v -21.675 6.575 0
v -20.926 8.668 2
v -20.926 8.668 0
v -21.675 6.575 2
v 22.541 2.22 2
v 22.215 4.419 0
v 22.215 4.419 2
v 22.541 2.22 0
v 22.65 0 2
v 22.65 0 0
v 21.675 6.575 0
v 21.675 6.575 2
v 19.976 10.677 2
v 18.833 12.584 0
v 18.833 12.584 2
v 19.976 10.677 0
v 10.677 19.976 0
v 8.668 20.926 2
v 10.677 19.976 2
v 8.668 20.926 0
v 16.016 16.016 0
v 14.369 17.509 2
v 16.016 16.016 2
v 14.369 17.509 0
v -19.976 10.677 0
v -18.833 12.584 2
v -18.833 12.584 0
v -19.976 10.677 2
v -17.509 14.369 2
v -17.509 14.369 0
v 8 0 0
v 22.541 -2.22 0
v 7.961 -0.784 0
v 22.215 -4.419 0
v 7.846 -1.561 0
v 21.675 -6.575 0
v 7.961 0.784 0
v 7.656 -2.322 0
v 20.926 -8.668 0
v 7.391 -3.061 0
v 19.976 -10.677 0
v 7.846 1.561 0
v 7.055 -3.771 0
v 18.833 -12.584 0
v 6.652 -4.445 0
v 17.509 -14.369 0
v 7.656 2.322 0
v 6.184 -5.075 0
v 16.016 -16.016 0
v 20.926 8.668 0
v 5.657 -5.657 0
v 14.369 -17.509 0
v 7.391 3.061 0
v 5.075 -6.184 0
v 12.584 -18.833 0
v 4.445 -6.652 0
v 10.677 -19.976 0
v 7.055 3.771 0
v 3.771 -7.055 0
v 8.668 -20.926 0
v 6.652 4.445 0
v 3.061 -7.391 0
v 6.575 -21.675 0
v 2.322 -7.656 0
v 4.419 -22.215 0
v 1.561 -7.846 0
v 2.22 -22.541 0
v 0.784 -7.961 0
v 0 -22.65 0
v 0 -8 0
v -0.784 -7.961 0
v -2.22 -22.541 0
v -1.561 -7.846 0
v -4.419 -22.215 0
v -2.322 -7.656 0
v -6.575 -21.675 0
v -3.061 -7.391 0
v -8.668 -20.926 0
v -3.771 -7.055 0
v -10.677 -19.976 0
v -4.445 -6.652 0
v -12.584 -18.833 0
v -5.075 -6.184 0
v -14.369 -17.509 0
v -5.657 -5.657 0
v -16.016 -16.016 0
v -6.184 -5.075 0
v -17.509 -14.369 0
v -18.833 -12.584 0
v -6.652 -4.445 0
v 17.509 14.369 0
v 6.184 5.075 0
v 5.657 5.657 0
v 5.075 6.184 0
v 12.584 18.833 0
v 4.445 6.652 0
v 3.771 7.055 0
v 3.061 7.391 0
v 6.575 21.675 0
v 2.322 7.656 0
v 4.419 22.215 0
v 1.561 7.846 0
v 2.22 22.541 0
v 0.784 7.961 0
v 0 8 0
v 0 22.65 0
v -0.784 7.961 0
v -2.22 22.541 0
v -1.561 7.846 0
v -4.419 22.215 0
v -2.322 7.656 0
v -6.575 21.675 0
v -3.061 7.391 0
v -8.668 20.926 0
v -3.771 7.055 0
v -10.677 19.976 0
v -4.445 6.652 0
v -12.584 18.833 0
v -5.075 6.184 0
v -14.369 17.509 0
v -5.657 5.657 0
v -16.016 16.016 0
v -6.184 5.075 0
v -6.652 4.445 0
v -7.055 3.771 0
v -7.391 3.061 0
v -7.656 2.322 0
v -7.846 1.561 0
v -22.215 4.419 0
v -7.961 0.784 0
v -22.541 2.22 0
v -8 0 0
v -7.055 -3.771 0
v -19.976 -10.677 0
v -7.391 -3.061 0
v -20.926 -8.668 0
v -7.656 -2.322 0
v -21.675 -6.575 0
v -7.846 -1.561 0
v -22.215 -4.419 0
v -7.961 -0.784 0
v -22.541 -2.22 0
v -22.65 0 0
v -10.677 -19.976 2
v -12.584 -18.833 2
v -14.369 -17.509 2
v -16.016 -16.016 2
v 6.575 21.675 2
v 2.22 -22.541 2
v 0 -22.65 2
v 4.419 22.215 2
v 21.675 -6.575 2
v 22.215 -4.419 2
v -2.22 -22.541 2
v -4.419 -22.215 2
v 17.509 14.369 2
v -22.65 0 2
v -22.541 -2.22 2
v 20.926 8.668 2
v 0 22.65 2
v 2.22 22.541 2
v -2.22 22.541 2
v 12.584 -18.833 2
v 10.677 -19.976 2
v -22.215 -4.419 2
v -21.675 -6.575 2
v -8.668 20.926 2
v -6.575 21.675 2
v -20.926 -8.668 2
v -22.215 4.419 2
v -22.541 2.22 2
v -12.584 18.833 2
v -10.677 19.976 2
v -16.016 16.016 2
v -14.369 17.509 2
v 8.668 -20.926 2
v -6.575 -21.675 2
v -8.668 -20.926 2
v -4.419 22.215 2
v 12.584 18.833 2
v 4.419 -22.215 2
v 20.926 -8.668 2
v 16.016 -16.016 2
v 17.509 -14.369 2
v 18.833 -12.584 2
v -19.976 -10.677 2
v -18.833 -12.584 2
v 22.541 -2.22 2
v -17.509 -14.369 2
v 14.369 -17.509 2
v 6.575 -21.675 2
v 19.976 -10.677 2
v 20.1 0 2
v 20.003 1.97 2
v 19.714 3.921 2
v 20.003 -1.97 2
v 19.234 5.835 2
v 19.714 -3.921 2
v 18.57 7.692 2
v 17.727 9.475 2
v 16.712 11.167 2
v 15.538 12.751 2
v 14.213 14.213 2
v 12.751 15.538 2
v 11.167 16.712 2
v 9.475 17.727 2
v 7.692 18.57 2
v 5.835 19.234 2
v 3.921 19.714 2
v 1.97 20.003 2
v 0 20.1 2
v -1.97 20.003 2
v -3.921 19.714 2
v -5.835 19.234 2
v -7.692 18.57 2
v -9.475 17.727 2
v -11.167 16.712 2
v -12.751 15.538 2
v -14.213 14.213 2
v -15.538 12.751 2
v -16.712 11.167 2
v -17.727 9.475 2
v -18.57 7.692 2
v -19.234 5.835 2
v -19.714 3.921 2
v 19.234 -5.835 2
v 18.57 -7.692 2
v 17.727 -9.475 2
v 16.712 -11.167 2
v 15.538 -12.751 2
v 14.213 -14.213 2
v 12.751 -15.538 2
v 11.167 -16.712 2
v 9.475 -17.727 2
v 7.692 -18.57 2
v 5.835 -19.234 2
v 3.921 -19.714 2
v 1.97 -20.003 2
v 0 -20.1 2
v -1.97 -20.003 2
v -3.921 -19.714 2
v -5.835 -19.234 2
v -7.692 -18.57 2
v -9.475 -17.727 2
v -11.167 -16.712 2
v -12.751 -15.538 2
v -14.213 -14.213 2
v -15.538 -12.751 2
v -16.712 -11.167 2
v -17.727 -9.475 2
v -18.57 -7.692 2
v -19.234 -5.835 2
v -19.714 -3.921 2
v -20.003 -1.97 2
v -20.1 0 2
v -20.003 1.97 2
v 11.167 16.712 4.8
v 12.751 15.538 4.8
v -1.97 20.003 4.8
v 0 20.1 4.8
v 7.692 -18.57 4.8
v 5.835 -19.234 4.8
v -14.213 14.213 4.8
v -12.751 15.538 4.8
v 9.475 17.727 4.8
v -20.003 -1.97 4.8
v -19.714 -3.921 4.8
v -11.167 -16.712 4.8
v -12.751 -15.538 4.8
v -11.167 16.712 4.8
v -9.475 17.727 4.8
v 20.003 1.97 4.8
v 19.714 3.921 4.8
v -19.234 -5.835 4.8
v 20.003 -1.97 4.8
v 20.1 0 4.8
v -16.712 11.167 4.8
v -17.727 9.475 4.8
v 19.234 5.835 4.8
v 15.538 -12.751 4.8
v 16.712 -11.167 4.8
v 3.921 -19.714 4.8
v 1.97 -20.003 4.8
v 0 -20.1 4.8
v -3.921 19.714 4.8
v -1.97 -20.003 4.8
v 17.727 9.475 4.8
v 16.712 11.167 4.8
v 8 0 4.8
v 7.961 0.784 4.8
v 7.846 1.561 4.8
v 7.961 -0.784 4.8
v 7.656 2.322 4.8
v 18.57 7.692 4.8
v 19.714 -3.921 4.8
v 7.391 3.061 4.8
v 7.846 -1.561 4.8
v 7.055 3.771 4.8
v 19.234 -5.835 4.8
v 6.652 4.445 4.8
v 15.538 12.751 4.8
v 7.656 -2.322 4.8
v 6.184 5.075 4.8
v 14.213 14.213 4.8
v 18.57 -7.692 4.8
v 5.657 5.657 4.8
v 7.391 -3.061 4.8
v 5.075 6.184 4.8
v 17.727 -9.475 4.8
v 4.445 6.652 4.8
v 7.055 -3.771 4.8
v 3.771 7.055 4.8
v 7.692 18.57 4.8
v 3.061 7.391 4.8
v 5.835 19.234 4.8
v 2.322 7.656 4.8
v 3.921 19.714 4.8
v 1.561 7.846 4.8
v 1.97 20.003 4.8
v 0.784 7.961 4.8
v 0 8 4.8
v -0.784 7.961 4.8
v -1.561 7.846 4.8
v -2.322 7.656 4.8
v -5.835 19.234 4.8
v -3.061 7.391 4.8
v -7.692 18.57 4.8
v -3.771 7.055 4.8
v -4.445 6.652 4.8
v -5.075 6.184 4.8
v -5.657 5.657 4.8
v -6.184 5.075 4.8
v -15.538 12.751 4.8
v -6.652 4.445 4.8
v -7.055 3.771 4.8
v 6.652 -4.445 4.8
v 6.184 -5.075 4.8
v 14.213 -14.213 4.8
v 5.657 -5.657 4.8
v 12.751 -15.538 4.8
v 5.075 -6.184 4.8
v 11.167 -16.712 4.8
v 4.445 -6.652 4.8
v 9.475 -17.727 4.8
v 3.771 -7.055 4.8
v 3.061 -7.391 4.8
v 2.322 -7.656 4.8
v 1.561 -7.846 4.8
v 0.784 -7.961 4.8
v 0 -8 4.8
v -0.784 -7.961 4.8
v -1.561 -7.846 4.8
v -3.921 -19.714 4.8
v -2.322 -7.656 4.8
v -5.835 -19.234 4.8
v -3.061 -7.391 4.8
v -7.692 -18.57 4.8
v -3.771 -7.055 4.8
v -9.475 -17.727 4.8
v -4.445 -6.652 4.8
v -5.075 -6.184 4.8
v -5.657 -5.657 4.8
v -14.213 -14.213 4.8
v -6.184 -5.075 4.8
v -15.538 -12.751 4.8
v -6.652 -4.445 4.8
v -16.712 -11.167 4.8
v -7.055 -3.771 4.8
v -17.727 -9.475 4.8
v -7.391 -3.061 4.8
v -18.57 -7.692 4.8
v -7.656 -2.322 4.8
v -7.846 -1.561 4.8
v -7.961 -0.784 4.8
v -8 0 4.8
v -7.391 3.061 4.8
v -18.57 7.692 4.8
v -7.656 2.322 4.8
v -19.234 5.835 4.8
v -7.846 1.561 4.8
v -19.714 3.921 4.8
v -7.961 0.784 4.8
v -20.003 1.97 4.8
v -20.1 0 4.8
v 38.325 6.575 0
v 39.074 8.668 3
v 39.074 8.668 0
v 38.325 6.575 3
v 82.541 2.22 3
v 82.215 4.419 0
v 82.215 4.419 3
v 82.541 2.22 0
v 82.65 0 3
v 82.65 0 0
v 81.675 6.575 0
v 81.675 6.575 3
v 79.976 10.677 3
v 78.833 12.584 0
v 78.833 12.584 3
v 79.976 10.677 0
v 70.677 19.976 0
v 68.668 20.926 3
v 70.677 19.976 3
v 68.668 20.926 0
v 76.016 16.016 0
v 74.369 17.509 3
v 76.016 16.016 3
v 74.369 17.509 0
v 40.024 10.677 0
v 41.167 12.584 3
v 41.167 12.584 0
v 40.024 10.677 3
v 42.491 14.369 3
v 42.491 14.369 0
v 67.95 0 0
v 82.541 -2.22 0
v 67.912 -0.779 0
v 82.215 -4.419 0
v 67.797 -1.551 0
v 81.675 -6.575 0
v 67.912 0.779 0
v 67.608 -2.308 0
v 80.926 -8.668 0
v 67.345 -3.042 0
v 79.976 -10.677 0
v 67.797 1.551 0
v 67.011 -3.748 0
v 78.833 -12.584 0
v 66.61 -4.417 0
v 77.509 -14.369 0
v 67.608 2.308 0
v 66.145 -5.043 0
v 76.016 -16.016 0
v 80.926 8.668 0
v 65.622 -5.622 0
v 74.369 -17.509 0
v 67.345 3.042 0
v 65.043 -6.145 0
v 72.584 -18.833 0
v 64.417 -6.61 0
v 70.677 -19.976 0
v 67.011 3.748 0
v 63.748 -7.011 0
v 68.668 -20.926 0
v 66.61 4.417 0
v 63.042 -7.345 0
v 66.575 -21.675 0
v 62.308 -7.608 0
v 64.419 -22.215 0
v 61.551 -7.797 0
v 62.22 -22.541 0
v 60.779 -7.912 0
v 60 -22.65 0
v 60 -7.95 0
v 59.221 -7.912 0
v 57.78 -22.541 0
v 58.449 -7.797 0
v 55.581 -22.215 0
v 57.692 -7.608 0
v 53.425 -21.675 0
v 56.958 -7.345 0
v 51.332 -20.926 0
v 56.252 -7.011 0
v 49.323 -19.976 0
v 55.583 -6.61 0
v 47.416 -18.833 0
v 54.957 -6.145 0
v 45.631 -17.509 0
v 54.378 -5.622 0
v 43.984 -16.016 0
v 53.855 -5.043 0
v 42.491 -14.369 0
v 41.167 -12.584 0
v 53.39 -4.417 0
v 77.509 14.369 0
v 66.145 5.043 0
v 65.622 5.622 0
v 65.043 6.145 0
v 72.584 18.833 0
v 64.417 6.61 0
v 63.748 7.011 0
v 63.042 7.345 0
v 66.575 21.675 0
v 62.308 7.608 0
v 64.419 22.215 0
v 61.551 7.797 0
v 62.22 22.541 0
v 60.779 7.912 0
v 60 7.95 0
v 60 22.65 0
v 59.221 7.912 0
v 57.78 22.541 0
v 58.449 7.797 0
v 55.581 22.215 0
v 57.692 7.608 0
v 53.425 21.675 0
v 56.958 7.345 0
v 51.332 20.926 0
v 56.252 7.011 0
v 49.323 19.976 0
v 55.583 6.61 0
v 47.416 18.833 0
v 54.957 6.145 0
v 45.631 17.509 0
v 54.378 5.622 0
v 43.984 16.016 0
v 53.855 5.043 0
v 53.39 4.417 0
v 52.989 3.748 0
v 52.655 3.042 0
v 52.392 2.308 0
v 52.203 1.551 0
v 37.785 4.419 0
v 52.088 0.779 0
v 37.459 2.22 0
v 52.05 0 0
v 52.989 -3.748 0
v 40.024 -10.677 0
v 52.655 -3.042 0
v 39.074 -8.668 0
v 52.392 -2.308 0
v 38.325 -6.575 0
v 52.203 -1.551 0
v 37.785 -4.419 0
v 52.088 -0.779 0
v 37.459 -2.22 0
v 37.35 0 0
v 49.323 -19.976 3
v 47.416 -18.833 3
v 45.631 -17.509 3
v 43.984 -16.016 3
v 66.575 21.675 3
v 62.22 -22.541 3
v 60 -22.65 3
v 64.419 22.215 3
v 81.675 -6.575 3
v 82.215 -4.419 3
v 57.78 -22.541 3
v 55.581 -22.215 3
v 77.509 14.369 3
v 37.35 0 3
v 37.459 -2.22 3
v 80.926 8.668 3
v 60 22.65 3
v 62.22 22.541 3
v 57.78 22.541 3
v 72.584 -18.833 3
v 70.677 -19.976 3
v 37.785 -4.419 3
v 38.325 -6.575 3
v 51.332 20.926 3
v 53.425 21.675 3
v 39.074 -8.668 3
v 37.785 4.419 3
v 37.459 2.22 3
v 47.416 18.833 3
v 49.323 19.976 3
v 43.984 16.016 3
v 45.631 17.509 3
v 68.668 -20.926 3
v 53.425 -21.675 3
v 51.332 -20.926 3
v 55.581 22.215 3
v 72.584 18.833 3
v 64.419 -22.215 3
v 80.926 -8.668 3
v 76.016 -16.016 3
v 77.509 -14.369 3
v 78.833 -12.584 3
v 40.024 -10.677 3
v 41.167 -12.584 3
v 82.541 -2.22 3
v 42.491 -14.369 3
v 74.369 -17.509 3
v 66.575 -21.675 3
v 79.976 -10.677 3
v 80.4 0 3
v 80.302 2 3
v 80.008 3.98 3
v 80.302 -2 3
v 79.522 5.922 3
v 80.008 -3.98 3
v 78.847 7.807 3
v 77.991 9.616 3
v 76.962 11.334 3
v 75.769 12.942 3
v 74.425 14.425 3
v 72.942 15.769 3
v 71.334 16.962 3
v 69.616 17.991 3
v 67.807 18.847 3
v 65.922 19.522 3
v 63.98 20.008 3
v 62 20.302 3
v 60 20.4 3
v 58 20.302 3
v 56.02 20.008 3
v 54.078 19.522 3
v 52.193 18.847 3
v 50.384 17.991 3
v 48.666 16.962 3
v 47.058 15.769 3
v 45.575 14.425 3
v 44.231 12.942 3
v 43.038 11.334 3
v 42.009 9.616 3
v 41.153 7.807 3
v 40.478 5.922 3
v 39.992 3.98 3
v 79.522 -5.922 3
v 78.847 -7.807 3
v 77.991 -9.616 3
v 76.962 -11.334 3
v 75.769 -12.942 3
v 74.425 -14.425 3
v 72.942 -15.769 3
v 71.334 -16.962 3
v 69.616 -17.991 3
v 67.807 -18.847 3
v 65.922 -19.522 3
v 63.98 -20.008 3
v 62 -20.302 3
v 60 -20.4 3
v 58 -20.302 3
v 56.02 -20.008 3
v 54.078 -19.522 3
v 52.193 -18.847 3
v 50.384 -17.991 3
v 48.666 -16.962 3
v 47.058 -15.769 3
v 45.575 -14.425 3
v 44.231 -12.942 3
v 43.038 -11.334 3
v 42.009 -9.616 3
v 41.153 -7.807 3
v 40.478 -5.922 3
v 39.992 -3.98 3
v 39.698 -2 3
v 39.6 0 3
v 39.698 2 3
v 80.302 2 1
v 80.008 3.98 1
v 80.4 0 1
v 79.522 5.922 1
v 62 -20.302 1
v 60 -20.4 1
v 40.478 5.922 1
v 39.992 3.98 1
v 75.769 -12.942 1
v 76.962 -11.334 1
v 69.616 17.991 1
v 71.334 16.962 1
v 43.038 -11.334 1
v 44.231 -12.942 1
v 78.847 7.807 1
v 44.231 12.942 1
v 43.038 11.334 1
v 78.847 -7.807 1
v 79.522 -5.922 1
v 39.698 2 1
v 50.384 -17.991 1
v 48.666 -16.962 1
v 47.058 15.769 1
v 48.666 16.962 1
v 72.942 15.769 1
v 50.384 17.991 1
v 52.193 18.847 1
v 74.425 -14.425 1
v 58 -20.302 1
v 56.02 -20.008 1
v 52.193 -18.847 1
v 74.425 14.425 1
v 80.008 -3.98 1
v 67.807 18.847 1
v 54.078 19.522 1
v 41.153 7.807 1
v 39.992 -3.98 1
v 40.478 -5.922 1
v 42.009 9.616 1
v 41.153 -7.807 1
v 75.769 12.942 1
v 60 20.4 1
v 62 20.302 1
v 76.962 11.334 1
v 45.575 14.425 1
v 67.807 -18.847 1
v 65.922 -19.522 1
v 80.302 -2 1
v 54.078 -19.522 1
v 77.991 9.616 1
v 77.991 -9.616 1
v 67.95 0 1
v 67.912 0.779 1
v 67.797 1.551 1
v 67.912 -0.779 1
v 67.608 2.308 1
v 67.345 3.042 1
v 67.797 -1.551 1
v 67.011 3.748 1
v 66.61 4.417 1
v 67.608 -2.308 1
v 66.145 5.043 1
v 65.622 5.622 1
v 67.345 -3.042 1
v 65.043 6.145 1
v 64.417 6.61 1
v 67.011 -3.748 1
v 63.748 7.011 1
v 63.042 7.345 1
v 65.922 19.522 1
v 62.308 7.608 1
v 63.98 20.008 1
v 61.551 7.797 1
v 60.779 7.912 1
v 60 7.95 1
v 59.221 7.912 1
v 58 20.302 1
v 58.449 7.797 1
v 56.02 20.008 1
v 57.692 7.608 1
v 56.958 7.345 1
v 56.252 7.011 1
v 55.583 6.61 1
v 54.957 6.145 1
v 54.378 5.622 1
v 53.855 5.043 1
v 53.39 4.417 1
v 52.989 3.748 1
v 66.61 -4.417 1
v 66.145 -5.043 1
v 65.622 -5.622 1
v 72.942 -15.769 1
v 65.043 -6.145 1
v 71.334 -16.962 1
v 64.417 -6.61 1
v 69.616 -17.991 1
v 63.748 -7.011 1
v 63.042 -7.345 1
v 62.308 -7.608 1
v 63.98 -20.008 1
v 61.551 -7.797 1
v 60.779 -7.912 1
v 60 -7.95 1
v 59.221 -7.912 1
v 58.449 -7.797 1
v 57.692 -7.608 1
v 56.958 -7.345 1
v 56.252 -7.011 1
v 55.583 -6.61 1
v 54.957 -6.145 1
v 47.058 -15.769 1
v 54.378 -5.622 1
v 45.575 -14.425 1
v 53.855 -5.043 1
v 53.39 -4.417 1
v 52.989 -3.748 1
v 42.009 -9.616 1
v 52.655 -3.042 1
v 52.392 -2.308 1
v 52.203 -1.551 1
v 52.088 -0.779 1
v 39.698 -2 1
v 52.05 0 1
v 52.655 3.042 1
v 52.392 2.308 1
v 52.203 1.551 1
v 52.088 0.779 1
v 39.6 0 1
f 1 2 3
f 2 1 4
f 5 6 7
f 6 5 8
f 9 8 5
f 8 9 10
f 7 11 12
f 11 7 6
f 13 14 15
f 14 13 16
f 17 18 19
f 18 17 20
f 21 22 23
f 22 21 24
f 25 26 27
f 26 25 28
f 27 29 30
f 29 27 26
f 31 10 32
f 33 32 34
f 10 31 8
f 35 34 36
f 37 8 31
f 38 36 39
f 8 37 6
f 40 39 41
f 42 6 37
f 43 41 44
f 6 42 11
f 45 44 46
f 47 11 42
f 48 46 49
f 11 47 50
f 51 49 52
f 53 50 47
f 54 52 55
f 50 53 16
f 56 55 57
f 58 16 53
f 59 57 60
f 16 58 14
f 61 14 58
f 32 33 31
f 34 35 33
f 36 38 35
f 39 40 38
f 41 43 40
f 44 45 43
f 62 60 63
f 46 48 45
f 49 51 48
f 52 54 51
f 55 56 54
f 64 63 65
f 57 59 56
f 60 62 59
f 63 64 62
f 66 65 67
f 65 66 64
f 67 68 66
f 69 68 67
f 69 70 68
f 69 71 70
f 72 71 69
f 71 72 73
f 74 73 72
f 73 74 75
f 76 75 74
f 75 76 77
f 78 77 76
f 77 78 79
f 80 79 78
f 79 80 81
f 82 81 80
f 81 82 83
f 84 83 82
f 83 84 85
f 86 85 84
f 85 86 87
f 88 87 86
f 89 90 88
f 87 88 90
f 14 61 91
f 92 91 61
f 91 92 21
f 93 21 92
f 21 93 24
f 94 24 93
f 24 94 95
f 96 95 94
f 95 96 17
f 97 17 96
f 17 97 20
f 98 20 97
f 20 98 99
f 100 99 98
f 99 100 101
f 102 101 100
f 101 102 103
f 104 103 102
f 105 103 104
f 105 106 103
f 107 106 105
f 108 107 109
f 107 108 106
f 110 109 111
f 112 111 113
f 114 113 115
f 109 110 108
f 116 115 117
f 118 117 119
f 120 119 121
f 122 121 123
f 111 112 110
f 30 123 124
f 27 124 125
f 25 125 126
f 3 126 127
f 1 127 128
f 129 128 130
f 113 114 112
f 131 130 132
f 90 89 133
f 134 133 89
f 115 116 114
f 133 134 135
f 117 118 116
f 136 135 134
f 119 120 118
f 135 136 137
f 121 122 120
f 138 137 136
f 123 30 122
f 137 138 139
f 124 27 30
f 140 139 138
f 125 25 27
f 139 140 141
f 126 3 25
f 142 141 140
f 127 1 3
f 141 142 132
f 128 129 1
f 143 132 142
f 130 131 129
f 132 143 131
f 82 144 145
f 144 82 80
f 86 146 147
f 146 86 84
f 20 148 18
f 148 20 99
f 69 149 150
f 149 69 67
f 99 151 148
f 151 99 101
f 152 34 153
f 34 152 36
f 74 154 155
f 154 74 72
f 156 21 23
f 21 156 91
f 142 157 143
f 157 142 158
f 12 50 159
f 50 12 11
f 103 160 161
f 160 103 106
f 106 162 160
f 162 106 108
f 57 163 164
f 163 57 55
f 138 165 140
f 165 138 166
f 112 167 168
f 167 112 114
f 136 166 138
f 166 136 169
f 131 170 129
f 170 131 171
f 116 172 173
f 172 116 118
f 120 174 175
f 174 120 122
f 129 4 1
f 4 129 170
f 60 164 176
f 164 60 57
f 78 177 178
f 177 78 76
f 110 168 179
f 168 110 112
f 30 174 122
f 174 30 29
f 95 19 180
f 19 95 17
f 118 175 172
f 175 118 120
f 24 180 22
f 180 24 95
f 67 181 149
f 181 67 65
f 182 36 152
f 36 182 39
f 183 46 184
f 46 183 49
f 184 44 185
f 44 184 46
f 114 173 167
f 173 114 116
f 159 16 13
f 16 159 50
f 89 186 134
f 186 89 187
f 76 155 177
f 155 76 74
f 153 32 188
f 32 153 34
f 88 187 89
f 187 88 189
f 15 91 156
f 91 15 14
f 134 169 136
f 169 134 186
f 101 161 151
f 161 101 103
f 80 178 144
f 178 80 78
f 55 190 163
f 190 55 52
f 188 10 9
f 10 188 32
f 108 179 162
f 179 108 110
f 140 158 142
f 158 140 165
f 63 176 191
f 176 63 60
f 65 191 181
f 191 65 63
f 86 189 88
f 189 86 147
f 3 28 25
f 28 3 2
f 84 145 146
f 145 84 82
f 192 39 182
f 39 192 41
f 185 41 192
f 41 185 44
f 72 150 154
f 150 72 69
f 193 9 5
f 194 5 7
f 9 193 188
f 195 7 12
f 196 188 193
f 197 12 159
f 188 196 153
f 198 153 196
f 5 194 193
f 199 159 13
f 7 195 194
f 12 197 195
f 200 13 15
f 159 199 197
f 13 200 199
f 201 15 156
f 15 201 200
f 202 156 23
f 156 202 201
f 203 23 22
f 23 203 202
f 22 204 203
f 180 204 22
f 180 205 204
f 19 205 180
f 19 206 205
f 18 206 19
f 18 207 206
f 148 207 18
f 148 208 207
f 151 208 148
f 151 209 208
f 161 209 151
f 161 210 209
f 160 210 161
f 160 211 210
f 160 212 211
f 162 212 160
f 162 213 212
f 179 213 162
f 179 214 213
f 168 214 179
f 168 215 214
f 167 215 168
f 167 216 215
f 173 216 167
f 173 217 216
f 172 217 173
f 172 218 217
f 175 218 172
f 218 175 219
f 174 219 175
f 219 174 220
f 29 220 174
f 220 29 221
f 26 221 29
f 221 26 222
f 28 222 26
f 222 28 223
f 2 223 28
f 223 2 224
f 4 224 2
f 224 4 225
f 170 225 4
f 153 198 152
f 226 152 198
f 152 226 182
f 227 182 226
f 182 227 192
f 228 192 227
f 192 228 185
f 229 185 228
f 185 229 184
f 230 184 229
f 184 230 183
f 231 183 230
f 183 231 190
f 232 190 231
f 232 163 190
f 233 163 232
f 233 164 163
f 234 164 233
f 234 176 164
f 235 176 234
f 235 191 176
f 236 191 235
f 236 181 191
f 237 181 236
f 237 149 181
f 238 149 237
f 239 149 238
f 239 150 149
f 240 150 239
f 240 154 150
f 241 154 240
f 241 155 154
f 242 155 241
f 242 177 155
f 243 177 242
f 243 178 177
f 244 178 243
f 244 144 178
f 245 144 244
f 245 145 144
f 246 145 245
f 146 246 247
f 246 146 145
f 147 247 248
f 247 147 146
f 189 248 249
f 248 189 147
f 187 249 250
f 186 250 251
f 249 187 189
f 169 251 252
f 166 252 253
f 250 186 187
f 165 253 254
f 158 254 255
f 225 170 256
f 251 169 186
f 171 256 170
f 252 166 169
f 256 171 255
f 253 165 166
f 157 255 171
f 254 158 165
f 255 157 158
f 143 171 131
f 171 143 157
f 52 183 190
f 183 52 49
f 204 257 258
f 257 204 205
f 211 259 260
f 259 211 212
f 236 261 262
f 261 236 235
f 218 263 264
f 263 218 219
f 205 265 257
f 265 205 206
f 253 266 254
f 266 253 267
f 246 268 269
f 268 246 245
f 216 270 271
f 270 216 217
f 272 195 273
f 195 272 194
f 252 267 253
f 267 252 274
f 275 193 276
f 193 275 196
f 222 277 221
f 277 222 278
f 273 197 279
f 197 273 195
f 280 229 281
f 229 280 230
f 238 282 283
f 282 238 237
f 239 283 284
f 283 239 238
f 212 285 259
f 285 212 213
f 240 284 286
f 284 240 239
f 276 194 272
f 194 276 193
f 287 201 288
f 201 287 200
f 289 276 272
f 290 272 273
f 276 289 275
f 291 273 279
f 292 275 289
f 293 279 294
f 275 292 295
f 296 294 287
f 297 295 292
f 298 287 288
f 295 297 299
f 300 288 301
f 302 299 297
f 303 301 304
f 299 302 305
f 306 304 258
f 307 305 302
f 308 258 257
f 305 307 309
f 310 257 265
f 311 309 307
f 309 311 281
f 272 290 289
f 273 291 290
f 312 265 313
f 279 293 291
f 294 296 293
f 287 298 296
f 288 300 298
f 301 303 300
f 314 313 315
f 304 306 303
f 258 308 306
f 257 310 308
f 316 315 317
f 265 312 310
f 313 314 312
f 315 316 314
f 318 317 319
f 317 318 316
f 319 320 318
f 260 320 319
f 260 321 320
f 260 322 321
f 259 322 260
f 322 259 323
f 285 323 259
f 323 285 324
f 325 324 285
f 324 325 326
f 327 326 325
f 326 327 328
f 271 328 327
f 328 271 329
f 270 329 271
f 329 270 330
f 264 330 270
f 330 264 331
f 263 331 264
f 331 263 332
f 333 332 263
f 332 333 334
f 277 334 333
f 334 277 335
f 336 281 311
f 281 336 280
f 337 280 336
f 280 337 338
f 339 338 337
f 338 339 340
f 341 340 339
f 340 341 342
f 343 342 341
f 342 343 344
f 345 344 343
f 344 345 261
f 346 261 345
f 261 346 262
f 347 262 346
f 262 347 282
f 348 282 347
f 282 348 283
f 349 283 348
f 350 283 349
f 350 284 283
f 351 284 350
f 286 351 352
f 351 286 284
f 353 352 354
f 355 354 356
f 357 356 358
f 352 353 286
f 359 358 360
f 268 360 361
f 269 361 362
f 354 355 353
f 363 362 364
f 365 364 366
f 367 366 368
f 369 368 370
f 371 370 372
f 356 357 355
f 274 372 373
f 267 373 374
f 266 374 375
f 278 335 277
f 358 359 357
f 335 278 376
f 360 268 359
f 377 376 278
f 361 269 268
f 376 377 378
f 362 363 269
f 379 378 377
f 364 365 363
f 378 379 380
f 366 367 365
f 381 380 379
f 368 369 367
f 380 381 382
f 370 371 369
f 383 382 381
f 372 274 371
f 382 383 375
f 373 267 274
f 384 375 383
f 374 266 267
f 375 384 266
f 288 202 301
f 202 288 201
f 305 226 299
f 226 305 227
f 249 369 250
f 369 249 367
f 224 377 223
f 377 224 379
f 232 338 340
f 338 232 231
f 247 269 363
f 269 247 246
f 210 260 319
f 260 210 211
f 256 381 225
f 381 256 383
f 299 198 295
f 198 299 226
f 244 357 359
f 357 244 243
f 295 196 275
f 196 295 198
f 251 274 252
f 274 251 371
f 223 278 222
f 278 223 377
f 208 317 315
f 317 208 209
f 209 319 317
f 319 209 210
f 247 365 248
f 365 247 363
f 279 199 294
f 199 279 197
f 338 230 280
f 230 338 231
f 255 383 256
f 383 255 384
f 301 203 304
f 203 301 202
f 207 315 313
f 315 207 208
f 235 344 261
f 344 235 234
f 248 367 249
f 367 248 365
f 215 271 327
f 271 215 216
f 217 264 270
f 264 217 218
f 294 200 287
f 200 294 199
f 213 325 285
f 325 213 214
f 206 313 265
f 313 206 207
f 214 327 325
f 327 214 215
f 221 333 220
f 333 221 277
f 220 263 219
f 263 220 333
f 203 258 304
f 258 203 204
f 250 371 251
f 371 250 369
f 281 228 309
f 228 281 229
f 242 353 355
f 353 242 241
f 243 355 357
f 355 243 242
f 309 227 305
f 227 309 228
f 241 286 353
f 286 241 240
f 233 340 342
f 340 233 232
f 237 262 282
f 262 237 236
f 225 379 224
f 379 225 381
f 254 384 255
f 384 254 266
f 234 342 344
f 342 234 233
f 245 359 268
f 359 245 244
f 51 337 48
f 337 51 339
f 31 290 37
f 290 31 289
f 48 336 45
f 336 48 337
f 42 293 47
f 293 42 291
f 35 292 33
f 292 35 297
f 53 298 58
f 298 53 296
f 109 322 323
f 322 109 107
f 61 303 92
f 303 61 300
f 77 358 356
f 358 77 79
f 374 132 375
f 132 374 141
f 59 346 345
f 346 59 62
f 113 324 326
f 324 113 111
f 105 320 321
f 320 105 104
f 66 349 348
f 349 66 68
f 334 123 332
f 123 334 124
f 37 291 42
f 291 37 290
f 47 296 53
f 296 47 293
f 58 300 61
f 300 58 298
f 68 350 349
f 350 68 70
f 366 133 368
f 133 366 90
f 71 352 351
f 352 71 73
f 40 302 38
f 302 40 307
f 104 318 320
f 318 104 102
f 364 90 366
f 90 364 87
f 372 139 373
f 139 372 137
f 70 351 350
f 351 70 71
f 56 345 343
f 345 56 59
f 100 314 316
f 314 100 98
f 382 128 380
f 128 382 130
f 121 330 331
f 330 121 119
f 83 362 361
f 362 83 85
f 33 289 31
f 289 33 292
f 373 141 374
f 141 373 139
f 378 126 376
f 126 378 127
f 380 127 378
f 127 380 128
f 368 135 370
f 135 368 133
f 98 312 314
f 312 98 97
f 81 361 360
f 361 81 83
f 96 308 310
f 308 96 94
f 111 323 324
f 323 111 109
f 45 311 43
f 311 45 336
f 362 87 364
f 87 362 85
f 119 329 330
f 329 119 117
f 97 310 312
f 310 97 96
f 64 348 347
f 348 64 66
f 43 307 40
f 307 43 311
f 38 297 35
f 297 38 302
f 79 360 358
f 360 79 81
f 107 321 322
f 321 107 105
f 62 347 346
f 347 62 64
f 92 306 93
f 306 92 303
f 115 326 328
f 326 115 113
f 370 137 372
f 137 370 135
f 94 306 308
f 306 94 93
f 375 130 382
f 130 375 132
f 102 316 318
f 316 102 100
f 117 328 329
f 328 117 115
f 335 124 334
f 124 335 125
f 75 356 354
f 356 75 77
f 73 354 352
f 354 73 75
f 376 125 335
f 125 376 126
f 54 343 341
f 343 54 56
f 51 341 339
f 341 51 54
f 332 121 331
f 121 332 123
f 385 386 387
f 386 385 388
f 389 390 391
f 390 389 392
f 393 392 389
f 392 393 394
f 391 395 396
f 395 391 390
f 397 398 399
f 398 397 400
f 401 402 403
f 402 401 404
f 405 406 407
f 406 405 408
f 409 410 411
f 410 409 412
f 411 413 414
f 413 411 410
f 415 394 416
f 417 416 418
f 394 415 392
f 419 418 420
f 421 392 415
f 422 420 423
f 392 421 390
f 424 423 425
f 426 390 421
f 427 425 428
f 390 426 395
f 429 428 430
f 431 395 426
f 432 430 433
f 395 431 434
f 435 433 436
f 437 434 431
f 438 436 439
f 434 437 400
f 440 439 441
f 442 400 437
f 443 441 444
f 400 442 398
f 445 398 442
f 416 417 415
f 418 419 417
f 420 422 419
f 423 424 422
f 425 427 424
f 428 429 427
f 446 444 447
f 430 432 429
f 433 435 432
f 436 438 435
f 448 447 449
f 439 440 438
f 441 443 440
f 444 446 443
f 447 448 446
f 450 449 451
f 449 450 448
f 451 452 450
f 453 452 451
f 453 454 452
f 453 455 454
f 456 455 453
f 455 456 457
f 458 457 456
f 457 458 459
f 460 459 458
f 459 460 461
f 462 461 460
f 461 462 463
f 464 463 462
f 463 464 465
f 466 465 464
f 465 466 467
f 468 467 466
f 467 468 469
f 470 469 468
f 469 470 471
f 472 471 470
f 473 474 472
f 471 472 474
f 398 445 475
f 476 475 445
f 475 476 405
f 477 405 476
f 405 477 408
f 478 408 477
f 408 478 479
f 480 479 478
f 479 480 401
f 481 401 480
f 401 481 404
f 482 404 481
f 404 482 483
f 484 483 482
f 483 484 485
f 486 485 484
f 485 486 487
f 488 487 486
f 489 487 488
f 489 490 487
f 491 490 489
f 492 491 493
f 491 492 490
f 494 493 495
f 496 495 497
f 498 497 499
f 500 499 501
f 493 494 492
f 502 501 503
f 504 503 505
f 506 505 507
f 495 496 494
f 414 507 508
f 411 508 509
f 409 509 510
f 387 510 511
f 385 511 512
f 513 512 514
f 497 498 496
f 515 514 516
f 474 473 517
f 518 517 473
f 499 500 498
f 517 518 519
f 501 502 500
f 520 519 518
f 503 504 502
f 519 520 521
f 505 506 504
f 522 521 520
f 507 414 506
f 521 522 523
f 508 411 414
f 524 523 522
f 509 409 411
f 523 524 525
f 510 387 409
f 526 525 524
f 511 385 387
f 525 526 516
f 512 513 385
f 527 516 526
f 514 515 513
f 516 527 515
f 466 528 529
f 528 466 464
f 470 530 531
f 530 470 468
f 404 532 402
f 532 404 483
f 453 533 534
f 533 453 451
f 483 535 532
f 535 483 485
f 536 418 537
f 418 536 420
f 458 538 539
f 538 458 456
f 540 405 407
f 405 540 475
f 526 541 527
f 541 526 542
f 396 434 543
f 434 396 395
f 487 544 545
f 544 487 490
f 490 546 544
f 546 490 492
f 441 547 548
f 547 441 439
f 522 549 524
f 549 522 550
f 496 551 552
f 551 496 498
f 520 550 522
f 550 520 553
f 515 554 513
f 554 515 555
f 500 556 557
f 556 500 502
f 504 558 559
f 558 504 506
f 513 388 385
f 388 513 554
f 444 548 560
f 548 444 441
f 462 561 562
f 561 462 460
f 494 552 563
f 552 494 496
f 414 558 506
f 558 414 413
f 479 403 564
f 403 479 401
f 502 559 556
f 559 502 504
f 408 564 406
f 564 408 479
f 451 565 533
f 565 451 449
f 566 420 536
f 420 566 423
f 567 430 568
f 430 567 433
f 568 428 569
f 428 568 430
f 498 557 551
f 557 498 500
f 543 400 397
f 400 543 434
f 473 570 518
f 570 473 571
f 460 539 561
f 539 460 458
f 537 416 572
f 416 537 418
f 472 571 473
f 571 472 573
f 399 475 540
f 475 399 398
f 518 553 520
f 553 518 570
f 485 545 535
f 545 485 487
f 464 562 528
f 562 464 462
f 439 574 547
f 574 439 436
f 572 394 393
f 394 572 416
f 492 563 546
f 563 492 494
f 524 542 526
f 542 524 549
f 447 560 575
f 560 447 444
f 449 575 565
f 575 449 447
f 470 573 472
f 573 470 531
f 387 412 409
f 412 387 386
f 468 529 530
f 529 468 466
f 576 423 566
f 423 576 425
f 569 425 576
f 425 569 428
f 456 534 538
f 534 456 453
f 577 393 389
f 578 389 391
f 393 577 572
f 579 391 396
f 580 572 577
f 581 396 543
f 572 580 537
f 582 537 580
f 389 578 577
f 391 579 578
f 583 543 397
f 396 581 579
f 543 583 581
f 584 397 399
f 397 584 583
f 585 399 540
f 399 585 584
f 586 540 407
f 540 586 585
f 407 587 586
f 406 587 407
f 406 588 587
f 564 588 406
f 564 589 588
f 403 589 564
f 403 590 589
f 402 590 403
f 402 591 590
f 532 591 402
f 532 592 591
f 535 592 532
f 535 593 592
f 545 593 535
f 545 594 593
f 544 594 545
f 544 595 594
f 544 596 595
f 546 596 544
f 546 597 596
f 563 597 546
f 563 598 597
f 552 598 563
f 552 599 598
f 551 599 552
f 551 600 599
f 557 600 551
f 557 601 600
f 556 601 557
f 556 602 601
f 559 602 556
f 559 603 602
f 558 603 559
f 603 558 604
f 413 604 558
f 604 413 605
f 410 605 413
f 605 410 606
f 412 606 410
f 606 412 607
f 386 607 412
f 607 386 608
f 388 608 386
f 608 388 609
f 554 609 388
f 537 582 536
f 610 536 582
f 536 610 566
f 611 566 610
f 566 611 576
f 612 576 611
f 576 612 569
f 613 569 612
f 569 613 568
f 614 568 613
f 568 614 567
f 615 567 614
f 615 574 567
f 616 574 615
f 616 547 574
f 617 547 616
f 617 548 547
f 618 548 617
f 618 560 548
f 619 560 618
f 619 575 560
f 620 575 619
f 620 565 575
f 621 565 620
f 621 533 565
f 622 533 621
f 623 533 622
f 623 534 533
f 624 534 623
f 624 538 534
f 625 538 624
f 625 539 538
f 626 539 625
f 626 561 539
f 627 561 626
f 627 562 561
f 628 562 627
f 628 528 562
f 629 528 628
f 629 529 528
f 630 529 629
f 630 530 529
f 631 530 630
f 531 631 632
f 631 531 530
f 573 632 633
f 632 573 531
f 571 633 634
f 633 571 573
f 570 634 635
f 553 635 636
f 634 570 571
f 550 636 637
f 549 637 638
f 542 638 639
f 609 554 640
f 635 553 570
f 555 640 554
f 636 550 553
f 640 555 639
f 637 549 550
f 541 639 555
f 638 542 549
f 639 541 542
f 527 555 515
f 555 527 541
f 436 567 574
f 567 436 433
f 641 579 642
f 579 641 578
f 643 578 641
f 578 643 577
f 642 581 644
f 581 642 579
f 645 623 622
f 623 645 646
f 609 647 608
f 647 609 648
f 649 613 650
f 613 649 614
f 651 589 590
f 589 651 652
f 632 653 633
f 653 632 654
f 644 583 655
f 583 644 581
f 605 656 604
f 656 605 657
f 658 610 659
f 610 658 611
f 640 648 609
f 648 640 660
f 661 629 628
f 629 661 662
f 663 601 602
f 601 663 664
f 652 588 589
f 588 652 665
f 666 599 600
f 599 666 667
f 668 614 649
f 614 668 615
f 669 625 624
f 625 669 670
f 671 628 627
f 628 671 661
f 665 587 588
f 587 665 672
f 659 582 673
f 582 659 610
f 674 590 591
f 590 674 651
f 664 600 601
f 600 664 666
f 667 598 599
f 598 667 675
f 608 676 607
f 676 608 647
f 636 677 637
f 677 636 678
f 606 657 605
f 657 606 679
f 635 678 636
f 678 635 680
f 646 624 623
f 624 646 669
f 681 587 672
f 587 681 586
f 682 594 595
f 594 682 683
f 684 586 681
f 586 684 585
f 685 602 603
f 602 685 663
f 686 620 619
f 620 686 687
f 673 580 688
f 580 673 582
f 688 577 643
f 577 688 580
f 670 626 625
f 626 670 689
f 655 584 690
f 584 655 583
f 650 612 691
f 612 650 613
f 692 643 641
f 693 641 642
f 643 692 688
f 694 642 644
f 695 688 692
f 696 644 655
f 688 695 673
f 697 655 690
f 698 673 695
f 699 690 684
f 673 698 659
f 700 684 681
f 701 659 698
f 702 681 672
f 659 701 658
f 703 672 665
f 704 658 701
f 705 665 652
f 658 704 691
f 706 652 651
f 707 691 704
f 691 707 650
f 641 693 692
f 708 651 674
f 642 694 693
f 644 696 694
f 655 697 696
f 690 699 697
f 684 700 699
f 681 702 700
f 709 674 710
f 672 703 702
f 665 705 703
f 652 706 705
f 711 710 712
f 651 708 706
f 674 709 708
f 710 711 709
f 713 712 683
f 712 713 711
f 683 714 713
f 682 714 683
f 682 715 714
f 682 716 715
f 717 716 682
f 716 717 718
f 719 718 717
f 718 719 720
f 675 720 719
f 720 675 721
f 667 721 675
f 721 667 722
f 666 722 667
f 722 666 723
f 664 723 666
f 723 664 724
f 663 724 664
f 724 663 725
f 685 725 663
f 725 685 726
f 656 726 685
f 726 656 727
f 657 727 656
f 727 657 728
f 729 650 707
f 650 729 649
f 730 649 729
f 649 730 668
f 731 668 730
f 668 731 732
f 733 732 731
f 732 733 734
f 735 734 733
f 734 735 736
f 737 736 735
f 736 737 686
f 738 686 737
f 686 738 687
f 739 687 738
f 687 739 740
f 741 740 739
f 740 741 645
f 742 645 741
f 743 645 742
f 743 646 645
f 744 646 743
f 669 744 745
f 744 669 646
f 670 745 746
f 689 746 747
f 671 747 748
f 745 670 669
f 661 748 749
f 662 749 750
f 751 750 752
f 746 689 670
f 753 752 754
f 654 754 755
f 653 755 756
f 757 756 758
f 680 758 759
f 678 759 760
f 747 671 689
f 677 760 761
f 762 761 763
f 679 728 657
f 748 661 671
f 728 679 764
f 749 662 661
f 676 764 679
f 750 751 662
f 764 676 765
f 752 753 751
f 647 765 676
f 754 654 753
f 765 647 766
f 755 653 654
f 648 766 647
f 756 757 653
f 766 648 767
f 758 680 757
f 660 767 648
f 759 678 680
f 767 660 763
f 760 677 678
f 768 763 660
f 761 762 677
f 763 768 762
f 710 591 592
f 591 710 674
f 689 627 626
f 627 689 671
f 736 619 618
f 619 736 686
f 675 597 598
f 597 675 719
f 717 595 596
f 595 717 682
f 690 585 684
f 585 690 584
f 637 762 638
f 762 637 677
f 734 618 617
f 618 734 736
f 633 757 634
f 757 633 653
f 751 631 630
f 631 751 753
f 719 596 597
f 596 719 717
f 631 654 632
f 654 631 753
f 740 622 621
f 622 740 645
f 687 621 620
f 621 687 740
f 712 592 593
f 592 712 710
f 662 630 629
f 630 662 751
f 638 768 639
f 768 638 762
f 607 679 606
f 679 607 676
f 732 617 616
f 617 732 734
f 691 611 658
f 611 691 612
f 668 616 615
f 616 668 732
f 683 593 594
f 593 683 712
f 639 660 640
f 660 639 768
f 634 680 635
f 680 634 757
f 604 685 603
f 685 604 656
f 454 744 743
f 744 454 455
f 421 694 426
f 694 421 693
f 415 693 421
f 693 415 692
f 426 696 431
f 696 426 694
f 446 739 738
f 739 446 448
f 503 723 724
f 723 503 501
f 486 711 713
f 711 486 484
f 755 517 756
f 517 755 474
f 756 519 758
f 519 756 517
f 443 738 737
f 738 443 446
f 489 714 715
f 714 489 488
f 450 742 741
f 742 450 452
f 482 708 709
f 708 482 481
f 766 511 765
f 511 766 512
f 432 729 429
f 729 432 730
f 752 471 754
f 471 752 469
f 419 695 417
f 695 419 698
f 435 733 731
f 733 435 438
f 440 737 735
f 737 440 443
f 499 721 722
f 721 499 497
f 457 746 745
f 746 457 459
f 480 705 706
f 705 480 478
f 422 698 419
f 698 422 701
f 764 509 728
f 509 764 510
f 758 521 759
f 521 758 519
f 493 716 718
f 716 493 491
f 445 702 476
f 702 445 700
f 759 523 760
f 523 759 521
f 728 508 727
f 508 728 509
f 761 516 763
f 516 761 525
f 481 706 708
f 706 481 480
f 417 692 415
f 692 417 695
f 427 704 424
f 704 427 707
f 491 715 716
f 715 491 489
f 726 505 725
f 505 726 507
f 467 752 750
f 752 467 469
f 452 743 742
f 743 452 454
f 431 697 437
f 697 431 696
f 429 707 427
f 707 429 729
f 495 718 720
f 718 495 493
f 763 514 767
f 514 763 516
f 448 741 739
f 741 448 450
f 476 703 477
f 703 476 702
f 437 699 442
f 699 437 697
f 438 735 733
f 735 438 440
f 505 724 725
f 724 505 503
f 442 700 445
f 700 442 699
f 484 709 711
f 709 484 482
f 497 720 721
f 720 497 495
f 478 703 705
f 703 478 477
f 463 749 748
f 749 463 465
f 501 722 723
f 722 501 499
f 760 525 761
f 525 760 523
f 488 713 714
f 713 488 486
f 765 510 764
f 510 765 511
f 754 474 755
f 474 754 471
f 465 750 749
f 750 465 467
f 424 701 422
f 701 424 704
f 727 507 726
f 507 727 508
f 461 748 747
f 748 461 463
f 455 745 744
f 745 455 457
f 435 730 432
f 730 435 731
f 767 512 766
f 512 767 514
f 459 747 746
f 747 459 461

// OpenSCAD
// Deckel um be einem Gehaeuse die Kabellöcher zu schliessen

dKlein=25.2;
dGross=40.3;
dSchraubDurchfuehrung=15.7+.2;
scheibenOverlap=5.0;

wallThickness=2.8;
$fn=64;

translate([0,0,0]) Part1(hPlaettchenStaerke=2,dInnen=dGross);
translate([60,0,0]) Part2(hPlaettchenStaerke=3,dInnen=dGross);


module Part1(
    hPlaettchenStaerke=3,
    bohrung=dSchraubDurchfuehrung,
    dInnen=dKlein,
    ){    
    difference(){
        union(){
            // Deckel
            cylinder(d=dInnen+scheibenOverlap,h=hPlaettchenStaerke);

            // Fuellung Loch
            translate([0,0,hPlaettchenStaerke])
                cylinder(d=dInnen-.1,h=wallThickness);
        }
        
        translate([0,0,-.10])
         cylinder(d=bohrung+.1,h=hPlaettchenStaerke+wallThickness+2);
}
}

module Part2(
    hPlaettchenStaerke=3,
    dInnen=dKlein,
    bohrung=dSchraubDurchfuehrung,
    ){
    difference(){
        // Deckel
        cylinder(d=dInnen+scheibenOverlap,h=hPlaettchenStaerke);

        // Fuellung Loch
        translate([0,0,hPlaettchenStaerke-2])
            cylinder(d=dInnen+.5,h=22);
        
        
        translate([0,0,-.1])
            cylinder(d=dSchraubDurchfuehrung,h=14);
    }
}
